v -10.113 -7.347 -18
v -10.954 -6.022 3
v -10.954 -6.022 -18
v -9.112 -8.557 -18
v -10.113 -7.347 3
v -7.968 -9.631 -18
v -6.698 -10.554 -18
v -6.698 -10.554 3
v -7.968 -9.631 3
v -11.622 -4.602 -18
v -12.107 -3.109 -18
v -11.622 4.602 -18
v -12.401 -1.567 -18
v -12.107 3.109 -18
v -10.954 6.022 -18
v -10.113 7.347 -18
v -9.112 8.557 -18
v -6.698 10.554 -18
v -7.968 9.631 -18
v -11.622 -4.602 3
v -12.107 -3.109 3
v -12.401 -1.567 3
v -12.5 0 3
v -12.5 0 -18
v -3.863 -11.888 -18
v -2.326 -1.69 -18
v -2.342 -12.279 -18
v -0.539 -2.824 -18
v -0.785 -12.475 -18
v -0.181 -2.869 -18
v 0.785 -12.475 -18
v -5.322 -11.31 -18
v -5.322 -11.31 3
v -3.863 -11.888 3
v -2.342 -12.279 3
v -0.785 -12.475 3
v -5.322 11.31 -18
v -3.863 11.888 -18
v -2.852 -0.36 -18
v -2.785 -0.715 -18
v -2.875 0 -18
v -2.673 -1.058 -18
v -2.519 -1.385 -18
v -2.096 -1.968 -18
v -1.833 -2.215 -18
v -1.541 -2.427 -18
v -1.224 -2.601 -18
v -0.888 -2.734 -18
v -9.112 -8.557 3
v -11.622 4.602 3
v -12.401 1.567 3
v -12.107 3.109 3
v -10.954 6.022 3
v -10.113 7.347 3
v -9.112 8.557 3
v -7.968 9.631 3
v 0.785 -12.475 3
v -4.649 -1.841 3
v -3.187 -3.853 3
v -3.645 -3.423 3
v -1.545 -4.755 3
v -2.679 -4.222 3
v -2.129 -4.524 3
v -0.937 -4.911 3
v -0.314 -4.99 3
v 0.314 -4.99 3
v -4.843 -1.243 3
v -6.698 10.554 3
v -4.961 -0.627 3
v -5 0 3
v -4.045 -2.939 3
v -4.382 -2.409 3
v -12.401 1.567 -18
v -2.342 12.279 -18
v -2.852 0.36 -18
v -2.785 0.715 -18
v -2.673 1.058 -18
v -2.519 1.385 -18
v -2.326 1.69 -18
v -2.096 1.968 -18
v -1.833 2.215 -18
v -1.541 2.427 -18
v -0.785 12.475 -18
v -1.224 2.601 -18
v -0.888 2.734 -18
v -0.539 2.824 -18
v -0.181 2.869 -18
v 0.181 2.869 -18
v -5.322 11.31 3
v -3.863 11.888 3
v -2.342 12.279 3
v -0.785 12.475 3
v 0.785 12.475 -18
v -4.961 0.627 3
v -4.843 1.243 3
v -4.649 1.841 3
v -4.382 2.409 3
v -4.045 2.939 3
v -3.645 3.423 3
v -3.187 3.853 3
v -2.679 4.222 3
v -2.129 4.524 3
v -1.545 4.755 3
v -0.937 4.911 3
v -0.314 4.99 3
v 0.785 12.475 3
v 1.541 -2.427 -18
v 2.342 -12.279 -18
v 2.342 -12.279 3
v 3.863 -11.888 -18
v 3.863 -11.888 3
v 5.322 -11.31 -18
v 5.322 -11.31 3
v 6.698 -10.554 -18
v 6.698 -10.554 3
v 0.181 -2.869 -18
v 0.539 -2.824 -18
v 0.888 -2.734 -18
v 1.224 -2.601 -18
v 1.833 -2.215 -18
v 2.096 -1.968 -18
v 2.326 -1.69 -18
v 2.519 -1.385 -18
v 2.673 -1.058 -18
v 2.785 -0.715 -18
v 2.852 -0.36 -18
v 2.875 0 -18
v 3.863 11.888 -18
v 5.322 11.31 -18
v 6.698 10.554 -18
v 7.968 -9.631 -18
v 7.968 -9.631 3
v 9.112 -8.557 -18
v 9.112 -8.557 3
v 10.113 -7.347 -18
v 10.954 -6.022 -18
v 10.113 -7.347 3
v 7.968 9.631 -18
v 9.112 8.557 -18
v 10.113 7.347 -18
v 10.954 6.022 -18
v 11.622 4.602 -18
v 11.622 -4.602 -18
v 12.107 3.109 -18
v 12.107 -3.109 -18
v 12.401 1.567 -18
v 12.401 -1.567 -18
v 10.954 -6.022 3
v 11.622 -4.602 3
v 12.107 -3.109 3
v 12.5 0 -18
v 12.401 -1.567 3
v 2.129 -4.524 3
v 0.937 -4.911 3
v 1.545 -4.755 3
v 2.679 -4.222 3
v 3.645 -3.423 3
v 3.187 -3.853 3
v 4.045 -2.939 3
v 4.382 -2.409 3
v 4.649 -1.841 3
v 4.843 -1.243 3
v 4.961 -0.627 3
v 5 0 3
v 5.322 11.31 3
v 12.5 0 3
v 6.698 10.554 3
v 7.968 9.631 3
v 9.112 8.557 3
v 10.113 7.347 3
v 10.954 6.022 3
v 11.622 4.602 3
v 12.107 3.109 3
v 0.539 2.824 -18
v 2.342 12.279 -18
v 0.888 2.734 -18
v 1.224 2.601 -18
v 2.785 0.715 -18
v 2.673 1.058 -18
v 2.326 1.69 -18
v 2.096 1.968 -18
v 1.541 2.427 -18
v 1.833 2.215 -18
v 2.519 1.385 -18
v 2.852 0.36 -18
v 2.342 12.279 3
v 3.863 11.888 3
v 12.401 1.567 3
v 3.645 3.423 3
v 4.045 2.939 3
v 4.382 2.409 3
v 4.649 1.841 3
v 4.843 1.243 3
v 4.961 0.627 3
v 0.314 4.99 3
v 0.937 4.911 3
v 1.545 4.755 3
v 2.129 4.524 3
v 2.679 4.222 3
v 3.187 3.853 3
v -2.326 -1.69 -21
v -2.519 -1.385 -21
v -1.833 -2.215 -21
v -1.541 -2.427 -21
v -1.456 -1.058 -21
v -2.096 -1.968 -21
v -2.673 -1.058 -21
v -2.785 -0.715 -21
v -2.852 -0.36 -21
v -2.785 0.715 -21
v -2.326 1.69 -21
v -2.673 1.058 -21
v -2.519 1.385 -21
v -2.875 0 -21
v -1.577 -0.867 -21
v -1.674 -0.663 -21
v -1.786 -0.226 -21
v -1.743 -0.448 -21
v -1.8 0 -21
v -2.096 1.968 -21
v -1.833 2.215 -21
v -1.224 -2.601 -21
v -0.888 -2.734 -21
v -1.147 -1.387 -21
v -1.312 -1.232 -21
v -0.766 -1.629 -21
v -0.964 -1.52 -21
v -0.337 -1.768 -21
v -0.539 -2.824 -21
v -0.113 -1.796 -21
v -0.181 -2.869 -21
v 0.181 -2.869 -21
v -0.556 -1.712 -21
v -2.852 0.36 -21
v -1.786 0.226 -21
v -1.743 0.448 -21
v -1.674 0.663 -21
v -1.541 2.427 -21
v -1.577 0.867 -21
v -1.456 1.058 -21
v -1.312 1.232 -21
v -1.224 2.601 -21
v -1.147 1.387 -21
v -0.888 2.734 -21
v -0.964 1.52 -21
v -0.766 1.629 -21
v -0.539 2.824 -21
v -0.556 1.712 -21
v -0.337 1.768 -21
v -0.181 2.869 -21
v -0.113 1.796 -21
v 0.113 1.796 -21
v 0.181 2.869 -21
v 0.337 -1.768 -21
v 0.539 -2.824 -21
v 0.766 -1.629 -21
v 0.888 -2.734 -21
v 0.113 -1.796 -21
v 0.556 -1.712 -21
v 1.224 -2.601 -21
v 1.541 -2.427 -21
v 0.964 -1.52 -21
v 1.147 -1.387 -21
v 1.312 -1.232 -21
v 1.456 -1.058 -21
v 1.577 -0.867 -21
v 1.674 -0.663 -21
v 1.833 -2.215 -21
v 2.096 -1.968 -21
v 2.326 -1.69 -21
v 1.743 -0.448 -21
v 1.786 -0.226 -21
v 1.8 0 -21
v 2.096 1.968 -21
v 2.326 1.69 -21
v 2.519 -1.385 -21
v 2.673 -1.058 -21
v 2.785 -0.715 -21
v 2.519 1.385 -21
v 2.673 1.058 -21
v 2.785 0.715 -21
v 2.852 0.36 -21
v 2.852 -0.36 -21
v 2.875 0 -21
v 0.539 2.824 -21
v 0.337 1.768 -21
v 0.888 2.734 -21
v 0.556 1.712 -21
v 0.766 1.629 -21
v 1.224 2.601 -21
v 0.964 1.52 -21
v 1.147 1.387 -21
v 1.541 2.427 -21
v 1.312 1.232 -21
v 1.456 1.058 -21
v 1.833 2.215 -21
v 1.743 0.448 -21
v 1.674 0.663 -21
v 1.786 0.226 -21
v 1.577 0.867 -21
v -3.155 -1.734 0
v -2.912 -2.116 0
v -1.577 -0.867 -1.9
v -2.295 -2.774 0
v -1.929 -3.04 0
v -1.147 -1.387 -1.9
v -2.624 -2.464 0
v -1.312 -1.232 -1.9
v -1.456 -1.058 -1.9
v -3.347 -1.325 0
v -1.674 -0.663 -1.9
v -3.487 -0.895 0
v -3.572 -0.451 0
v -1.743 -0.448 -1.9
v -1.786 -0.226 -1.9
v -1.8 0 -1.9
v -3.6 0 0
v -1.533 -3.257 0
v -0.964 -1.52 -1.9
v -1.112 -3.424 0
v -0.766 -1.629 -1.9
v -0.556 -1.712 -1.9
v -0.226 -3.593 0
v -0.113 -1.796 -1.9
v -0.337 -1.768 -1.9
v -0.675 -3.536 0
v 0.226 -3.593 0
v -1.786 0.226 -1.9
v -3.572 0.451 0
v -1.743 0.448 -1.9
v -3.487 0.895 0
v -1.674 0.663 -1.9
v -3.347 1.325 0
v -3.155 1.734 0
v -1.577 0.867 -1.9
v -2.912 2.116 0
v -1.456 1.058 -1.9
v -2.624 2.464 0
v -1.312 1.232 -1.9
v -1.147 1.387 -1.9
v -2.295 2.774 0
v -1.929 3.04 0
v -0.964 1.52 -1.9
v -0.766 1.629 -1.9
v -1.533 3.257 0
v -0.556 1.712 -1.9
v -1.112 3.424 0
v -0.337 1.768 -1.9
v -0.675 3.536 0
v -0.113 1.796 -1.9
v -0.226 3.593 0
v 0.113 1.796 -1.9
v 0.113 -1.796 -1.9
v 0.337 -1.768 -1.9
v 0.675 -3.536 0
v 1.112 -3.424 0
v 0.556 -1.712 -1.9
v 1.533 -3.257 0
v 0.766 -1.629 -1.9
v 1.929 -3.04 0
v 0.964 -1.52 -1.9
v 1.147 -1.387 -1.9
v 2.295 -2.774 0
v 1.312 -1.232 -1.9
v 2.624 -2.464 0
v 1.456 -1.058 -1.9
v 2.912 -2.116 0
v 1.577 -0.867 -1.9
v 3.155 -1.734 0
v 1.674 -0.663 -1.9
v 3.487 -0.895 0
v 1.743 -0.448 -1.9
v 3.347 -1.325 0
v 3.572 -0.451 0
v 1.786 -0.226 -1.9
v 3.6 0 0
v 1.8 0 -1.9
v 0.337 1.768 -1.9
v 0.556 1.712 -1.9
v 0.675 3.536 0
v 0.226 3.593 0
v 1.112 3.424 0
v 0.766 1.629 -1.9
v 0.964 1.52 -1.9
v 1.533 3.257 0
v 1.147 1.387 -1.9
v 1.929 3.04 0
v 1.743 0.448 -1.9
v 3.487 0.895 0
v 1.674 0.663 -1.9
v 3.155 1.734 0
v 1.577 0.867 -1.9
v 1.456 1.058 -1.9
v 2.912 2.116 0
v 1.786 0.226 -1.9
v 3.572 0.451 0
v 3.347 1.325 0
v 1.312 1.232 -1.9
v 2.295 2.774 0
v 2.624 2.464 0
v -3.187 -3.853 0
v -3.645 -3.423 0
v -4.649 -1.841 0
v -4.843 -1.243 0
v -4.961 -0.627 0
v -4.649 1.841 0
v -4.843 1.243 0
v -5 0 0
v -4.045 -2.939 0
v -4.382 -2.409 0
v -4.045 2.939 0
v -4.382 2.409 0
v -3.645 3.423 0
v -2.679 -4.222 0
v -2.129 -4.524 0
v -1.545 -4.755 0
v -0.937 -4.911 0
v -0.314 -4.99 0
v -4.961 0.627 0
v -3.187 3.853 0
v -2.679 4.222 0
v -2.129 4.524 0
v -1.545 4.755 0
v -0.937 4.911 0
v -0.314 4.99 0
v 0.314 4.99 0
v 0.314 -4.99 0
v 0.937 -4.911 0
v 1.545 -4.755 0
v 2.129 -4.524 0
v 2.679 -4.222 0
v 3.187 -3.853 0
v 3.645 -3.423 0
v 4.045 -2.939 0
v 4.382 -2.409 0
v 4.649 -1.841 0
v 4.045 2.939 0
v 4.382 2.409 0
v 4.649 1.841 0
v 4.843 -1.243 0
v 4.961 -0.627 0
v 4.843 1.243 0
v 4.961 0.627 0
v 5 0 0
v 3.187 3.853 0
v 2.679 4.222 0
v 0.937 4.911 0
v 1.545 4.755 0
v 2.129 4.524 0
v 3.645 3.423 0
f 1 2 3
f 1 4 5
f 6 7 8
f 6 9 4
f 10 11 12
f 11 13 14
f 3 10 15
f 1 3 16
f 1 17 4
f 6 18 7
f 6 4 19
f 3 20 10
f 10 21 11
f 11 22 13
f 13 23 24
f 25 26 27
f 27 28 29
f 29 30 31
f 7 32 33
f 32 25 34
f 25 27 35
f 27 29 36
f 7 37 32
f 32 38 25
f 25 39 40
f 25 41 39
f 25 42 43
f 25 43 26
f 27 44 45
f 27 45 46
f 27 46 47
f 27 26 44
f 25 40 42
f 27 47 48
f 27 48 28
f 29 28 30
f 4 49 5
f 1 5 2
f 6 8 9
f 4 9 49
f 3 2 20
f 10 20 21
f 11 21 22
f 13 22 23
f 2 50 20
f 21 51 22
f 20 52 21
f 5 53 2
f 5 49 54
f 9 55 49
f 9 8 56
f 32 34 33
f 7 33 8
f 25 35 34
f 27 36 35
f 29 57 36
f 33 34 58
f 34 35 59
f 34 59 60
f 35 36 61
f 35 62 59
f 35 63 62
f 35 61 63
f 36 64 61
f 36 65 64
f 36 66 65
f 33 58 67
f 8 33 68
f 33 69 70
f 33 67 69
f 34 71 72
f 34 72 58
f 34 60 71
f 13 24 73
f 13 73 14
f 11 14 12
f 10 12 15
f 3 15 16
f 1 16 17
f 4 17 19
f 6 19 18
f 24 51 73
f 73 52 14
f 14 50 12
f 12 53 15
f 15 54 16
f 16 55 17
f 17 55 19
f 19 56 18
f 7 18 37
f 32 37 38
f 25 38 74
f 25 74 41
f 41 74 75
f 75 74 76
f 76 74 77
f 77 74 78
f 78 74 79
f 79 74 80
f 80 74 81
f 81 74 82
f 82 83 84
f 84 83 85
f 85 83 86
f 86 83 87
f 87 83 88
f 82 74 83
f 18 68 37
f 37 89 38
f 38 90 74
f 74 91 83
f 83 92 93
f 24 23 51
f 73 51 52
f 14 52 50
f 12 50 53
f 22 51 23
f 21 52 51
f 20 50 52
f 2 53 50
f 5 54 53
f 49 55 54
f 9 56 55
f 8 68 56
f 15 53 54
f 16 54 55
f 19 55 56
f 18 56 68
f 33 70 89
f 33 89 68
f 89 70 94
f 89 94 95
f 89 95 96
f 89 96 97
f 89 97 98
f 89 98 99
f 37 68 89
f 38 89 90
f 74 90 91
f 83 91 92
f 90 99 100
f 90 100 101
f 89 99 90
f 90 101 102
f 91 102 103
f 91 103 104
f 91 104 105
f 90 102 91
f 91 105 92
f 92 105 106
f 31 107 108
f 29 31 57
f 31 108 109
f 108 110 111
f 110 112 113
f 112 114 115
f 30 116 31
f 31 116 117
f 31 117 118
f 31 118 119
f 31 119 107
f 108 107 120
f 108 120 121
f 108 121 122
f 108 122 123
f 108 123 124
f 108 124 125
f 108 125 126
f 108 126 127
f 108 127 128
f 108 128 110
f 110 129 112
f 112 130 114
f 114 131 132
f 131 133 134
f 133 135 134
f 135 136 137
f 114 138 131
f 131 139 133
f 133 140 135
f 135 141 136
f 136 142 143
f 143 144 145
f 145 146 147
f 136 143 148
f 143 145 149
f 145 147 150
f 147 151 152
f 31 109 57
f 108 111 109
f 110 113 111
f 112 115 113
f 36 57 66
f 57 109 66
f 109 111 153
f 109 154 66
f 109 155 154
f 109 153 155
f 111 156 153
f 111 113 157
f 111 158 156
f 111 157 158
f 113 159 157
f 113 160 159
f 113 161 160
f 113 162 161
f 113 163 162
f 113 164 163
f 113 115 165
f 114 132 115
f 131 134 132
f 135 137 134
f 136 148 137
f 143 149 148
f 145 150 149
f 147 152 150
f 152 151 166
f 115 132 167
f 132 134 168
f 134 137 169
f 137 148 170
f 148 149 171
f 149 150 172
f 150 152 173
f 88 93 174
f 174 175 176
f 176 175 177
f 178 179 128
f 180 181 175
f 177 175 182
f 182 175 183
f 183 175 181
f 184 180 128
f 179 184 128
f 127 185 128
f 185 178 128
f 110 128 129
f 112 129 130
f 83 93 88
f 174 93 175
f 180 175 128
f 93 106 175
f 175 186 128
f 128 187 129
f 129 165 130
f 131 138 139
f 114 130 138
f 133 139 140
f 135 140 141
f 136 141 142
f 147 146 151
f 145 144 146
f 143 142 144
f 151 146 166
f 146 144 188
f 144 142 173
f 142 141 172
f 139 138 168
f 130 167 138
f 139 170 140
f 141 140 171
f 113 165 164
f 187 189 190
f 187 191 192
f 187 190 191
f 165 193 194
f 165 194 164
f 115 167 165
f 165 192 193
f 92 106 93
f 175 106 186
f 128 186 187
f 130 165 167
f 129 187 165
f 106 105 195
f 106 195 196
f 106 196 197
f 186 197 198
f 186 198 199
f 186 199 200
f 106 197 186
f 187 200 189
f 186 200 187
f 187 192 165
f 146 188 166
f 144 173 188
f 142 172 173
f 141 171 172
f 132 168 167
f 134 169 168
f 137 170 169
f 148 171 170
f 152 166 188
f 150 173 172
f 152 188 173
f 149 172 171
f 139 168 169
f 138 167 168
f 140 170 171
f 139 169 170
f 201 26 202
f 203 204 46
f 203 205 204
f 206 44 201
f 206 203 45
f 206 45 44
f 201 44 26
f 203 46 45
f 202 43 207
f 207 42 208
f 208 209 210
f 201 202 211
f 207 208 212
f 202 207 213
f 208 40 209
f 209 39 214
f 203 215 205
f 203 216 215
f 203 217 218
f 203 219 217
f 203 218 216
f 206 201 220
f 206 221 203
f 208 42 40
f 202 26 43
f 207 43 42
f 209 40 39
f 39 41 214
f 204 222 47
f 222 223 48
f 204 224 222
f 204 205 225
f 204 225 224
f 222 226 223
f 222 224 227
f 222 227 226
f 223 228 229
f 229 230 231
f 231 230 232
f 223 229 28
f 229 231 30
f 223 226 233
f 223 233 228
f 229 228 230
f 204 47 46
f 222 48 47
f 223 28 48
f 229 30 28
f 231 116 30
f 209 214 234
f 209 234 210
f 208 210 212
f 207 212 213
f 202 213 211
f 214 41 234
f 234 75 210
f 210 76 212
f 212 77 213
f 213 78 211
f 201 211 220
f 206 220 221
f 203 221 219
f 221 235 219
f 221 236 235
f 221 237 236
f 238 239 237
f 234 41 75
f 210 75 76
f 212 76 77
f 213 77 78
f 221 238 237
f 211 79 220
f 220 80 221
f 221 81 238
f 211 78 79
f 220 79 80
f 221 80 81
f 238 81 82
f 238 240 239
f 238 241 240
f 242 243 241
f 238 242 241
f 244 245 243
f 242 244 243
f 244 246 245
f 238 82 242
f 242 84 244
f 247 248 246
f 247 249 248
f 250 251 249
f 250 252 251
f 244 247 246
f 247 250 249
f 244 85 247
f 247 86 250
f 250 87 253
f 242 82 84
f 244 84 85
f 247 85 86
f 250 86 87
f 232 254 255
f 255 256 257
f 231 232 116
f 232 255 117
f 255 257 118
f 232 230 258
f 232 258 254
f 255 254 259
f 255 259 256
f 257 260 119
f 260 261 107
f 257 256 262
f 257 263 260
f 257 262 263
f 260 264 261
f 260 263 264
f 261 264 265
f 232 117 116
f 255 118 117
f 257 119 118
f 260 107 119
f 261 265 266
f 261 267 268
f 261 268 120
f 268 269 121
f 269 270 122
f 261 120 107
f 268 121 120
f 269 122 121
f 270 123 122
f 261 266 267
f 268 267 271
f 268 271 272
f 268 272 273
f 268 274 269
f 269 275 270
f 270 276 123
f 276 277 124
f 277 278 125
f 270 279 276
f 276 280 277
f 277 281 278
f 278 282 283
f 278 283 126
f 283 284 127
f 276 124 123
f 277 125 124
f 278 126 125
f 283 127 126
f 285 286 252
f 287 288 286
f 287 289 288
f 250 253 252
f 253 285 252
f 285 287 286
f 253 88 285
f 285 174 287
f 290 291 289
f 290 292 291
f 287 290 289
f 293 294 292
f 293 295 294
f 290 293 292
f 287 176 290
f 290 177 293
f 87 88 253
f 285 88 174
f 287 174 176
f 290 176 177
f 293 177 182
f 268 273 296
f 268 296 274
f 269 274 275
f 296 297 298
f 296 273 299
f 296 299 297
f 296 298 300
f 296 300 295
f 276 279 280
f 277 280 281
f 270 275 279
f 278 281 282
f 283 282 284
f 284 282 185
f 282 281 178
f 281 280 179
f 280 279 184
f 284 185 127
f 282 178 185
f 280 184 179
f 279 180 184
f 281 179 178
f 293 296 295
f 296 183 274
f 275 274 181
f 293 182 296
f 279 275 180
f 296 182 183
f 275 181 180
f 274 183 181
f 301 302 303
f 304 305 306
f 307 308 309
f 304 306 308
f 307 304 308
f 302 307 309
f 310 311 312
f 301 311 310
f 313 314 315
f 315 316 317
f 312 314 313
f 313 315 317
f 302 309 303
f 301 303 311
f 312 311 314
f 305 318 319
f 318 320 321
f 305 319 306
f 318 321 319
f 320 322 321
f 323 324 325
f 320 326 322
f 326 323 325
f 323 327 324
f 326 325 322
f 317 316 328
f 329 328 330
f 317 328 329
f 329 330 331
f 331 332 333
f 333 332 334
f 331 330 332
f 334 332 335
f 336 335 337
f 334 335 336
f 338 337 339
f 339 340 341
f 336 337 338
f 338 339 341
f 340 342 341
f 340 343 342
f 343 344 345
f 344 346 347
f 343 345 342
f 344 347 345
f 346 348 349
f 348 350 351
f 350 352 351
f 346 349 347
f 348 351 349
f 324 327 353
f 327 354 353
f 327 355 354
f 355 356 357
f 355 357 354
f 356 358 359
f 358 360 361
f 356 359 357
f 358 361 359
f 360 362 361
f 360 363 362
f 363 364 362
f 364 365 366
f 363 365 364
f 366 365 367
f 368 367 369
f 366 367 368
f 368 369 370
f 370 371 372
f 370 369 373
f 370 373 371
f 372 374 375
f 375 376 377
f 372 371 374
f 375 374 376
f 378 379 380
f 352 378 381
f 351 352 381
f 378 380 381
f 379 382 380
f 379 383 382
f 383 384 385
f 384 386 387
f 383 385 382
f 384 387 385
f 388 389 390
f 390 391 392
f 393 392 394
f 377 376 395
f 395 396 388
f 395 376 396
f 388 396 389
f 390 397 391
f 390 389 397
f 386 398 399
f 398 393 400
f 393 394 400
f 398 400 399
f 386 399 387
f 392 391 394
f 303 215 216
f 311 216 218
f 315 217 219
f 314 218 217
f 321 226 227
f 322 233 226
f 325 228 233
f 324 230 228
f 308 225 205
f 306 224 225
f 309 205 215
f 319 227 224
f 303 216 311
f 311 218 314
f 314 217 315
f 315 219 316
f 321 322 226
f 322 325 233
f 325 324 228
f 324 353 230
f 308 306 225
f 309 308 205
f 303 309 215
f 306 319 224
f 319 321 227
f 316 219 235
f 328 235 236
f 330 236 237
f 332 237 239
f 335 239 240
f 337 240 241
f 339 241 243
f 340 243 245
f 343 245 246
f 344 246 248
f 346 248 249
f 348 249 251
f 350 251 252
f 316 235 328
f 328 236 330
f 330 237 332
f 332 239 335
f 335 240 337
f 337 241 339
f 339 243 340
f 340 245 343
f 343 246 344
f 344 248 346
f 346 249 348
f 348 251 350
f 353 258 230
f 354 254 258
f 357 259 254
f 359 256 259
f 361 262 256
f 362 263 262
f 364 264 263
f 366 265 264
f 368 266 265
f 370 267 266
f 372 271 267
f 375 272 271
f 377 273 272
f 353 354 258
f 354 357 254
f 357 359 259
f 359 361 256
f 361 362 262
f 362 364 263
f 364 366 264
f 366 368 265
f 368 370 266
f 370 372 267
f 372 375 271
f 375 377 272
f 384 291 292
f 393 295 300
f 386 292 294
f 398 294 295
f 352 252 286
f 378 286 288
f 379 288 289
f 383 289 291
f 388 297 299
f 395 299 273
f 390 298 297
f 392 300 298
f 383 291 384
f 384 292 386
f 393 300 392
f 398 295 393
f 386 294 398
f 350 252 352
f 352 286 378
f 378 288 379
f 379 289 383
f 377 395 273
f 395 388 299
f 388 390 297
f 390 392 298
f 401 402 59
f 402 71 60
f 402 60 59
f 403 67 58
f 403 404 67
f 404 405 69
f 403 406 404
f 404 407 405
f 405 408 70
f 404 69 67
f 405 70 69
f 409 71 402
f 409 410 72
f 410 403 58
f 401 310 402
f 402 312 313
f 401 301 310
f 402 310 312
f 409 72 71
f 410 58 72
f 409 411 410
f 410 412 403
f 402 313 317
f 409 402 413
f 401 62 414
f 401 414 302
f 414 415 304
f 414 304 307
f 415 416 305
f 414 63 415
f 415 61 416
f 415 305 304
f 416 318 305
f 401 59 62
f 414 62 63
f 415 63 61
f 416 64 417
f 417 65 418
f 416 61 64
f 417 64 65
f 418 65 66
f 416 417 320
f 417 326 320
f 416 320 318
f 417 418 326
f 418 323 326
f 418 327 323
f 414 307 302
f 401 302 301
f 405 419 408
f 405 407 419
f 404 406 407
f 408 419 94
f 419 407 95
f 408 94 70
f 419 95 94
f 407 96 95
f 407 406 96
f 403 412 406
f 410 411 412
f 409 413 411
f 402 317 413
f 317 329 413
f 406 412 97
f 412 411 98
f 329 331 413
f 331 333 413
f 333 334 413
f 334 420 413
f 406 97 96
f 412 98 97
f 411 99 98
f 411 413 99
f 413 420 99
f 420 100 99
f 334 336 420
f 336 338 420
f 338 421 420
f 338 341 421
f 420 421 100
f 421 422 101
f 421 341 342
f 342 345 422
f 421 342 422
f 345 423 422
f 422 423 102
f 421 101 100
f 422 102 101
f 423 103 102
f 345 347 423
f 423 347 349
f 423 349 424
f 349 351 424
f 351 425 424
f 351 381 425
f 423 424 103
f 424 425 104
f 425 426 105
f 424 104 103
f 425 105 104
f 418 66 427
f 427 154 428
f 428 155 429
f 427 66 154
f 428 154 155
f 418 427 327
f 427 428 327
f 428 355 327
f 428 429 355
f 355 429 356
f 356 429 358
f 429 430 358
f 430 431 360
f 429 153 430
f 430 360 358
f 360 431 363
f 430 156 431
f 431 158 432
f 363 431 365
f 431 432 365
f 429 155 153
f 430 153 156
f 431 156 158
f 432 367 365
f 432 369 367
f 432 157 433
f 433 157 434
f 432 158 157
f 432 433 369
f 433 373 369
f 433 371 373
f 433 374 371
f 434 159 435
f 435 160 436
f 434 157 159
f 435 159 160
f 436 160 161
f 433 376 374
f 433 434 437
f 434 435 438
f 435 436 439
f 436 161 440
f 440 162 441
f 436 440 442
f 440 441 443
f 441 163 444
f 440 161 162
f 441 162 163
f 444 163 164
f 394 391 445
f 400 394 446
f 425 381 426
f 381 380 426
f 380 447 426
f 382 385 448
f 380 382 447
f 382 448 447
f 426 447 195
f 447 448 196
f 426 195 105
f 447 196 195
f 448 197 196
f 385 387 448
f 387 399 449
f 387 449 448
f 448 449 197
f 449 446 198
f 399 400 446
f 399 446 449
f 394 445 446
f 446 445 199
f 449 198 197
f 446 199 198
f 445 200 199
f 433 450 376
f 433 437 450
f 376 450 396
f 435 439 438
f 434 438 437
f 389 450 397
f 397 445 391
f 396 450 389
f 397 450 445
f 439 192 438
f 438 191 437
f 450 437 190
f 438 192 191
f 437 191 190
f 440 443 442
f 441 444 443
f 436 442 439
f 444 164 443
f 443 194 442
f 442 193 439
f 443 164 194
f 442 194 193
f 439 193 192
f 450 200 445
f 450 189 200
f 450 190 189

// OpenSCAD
$fn = 50;

difference() {
	union() {
		translate(v = [0, 0, -18.0]) {
			cylinder(h = 21, r = 12.5);
		}
		#translate(v = [0, 0, -21.0]) {
			cylinder(h = 21, r = 2.875);
		}
	}
	union() {
		translate(v = [0, 0, 0]) {
			rotate(a = [0, 0, 0]) {
				difference() {
					union() {
						translate(v = [0, 0, -21.0]) {
							cylinder(h = 21, r = 1.5);
						}
						translate(v = [0, 0, -1.9]) {
							cylinder(h = 1.9, r1 = 1.8, r2 = 3.6);
						}
						translate(v = [0, 0, -21.0]) {
							cylinder(h = 21, r = 1.8);
						}
						translate(v = [0, 0, -21.0]) {
							cylinder(h = 21, r = 1.5);
						}
					}
					union();
				}
			}
		}
		#cylinder(h = 3, r = 5.0);
	}
}
